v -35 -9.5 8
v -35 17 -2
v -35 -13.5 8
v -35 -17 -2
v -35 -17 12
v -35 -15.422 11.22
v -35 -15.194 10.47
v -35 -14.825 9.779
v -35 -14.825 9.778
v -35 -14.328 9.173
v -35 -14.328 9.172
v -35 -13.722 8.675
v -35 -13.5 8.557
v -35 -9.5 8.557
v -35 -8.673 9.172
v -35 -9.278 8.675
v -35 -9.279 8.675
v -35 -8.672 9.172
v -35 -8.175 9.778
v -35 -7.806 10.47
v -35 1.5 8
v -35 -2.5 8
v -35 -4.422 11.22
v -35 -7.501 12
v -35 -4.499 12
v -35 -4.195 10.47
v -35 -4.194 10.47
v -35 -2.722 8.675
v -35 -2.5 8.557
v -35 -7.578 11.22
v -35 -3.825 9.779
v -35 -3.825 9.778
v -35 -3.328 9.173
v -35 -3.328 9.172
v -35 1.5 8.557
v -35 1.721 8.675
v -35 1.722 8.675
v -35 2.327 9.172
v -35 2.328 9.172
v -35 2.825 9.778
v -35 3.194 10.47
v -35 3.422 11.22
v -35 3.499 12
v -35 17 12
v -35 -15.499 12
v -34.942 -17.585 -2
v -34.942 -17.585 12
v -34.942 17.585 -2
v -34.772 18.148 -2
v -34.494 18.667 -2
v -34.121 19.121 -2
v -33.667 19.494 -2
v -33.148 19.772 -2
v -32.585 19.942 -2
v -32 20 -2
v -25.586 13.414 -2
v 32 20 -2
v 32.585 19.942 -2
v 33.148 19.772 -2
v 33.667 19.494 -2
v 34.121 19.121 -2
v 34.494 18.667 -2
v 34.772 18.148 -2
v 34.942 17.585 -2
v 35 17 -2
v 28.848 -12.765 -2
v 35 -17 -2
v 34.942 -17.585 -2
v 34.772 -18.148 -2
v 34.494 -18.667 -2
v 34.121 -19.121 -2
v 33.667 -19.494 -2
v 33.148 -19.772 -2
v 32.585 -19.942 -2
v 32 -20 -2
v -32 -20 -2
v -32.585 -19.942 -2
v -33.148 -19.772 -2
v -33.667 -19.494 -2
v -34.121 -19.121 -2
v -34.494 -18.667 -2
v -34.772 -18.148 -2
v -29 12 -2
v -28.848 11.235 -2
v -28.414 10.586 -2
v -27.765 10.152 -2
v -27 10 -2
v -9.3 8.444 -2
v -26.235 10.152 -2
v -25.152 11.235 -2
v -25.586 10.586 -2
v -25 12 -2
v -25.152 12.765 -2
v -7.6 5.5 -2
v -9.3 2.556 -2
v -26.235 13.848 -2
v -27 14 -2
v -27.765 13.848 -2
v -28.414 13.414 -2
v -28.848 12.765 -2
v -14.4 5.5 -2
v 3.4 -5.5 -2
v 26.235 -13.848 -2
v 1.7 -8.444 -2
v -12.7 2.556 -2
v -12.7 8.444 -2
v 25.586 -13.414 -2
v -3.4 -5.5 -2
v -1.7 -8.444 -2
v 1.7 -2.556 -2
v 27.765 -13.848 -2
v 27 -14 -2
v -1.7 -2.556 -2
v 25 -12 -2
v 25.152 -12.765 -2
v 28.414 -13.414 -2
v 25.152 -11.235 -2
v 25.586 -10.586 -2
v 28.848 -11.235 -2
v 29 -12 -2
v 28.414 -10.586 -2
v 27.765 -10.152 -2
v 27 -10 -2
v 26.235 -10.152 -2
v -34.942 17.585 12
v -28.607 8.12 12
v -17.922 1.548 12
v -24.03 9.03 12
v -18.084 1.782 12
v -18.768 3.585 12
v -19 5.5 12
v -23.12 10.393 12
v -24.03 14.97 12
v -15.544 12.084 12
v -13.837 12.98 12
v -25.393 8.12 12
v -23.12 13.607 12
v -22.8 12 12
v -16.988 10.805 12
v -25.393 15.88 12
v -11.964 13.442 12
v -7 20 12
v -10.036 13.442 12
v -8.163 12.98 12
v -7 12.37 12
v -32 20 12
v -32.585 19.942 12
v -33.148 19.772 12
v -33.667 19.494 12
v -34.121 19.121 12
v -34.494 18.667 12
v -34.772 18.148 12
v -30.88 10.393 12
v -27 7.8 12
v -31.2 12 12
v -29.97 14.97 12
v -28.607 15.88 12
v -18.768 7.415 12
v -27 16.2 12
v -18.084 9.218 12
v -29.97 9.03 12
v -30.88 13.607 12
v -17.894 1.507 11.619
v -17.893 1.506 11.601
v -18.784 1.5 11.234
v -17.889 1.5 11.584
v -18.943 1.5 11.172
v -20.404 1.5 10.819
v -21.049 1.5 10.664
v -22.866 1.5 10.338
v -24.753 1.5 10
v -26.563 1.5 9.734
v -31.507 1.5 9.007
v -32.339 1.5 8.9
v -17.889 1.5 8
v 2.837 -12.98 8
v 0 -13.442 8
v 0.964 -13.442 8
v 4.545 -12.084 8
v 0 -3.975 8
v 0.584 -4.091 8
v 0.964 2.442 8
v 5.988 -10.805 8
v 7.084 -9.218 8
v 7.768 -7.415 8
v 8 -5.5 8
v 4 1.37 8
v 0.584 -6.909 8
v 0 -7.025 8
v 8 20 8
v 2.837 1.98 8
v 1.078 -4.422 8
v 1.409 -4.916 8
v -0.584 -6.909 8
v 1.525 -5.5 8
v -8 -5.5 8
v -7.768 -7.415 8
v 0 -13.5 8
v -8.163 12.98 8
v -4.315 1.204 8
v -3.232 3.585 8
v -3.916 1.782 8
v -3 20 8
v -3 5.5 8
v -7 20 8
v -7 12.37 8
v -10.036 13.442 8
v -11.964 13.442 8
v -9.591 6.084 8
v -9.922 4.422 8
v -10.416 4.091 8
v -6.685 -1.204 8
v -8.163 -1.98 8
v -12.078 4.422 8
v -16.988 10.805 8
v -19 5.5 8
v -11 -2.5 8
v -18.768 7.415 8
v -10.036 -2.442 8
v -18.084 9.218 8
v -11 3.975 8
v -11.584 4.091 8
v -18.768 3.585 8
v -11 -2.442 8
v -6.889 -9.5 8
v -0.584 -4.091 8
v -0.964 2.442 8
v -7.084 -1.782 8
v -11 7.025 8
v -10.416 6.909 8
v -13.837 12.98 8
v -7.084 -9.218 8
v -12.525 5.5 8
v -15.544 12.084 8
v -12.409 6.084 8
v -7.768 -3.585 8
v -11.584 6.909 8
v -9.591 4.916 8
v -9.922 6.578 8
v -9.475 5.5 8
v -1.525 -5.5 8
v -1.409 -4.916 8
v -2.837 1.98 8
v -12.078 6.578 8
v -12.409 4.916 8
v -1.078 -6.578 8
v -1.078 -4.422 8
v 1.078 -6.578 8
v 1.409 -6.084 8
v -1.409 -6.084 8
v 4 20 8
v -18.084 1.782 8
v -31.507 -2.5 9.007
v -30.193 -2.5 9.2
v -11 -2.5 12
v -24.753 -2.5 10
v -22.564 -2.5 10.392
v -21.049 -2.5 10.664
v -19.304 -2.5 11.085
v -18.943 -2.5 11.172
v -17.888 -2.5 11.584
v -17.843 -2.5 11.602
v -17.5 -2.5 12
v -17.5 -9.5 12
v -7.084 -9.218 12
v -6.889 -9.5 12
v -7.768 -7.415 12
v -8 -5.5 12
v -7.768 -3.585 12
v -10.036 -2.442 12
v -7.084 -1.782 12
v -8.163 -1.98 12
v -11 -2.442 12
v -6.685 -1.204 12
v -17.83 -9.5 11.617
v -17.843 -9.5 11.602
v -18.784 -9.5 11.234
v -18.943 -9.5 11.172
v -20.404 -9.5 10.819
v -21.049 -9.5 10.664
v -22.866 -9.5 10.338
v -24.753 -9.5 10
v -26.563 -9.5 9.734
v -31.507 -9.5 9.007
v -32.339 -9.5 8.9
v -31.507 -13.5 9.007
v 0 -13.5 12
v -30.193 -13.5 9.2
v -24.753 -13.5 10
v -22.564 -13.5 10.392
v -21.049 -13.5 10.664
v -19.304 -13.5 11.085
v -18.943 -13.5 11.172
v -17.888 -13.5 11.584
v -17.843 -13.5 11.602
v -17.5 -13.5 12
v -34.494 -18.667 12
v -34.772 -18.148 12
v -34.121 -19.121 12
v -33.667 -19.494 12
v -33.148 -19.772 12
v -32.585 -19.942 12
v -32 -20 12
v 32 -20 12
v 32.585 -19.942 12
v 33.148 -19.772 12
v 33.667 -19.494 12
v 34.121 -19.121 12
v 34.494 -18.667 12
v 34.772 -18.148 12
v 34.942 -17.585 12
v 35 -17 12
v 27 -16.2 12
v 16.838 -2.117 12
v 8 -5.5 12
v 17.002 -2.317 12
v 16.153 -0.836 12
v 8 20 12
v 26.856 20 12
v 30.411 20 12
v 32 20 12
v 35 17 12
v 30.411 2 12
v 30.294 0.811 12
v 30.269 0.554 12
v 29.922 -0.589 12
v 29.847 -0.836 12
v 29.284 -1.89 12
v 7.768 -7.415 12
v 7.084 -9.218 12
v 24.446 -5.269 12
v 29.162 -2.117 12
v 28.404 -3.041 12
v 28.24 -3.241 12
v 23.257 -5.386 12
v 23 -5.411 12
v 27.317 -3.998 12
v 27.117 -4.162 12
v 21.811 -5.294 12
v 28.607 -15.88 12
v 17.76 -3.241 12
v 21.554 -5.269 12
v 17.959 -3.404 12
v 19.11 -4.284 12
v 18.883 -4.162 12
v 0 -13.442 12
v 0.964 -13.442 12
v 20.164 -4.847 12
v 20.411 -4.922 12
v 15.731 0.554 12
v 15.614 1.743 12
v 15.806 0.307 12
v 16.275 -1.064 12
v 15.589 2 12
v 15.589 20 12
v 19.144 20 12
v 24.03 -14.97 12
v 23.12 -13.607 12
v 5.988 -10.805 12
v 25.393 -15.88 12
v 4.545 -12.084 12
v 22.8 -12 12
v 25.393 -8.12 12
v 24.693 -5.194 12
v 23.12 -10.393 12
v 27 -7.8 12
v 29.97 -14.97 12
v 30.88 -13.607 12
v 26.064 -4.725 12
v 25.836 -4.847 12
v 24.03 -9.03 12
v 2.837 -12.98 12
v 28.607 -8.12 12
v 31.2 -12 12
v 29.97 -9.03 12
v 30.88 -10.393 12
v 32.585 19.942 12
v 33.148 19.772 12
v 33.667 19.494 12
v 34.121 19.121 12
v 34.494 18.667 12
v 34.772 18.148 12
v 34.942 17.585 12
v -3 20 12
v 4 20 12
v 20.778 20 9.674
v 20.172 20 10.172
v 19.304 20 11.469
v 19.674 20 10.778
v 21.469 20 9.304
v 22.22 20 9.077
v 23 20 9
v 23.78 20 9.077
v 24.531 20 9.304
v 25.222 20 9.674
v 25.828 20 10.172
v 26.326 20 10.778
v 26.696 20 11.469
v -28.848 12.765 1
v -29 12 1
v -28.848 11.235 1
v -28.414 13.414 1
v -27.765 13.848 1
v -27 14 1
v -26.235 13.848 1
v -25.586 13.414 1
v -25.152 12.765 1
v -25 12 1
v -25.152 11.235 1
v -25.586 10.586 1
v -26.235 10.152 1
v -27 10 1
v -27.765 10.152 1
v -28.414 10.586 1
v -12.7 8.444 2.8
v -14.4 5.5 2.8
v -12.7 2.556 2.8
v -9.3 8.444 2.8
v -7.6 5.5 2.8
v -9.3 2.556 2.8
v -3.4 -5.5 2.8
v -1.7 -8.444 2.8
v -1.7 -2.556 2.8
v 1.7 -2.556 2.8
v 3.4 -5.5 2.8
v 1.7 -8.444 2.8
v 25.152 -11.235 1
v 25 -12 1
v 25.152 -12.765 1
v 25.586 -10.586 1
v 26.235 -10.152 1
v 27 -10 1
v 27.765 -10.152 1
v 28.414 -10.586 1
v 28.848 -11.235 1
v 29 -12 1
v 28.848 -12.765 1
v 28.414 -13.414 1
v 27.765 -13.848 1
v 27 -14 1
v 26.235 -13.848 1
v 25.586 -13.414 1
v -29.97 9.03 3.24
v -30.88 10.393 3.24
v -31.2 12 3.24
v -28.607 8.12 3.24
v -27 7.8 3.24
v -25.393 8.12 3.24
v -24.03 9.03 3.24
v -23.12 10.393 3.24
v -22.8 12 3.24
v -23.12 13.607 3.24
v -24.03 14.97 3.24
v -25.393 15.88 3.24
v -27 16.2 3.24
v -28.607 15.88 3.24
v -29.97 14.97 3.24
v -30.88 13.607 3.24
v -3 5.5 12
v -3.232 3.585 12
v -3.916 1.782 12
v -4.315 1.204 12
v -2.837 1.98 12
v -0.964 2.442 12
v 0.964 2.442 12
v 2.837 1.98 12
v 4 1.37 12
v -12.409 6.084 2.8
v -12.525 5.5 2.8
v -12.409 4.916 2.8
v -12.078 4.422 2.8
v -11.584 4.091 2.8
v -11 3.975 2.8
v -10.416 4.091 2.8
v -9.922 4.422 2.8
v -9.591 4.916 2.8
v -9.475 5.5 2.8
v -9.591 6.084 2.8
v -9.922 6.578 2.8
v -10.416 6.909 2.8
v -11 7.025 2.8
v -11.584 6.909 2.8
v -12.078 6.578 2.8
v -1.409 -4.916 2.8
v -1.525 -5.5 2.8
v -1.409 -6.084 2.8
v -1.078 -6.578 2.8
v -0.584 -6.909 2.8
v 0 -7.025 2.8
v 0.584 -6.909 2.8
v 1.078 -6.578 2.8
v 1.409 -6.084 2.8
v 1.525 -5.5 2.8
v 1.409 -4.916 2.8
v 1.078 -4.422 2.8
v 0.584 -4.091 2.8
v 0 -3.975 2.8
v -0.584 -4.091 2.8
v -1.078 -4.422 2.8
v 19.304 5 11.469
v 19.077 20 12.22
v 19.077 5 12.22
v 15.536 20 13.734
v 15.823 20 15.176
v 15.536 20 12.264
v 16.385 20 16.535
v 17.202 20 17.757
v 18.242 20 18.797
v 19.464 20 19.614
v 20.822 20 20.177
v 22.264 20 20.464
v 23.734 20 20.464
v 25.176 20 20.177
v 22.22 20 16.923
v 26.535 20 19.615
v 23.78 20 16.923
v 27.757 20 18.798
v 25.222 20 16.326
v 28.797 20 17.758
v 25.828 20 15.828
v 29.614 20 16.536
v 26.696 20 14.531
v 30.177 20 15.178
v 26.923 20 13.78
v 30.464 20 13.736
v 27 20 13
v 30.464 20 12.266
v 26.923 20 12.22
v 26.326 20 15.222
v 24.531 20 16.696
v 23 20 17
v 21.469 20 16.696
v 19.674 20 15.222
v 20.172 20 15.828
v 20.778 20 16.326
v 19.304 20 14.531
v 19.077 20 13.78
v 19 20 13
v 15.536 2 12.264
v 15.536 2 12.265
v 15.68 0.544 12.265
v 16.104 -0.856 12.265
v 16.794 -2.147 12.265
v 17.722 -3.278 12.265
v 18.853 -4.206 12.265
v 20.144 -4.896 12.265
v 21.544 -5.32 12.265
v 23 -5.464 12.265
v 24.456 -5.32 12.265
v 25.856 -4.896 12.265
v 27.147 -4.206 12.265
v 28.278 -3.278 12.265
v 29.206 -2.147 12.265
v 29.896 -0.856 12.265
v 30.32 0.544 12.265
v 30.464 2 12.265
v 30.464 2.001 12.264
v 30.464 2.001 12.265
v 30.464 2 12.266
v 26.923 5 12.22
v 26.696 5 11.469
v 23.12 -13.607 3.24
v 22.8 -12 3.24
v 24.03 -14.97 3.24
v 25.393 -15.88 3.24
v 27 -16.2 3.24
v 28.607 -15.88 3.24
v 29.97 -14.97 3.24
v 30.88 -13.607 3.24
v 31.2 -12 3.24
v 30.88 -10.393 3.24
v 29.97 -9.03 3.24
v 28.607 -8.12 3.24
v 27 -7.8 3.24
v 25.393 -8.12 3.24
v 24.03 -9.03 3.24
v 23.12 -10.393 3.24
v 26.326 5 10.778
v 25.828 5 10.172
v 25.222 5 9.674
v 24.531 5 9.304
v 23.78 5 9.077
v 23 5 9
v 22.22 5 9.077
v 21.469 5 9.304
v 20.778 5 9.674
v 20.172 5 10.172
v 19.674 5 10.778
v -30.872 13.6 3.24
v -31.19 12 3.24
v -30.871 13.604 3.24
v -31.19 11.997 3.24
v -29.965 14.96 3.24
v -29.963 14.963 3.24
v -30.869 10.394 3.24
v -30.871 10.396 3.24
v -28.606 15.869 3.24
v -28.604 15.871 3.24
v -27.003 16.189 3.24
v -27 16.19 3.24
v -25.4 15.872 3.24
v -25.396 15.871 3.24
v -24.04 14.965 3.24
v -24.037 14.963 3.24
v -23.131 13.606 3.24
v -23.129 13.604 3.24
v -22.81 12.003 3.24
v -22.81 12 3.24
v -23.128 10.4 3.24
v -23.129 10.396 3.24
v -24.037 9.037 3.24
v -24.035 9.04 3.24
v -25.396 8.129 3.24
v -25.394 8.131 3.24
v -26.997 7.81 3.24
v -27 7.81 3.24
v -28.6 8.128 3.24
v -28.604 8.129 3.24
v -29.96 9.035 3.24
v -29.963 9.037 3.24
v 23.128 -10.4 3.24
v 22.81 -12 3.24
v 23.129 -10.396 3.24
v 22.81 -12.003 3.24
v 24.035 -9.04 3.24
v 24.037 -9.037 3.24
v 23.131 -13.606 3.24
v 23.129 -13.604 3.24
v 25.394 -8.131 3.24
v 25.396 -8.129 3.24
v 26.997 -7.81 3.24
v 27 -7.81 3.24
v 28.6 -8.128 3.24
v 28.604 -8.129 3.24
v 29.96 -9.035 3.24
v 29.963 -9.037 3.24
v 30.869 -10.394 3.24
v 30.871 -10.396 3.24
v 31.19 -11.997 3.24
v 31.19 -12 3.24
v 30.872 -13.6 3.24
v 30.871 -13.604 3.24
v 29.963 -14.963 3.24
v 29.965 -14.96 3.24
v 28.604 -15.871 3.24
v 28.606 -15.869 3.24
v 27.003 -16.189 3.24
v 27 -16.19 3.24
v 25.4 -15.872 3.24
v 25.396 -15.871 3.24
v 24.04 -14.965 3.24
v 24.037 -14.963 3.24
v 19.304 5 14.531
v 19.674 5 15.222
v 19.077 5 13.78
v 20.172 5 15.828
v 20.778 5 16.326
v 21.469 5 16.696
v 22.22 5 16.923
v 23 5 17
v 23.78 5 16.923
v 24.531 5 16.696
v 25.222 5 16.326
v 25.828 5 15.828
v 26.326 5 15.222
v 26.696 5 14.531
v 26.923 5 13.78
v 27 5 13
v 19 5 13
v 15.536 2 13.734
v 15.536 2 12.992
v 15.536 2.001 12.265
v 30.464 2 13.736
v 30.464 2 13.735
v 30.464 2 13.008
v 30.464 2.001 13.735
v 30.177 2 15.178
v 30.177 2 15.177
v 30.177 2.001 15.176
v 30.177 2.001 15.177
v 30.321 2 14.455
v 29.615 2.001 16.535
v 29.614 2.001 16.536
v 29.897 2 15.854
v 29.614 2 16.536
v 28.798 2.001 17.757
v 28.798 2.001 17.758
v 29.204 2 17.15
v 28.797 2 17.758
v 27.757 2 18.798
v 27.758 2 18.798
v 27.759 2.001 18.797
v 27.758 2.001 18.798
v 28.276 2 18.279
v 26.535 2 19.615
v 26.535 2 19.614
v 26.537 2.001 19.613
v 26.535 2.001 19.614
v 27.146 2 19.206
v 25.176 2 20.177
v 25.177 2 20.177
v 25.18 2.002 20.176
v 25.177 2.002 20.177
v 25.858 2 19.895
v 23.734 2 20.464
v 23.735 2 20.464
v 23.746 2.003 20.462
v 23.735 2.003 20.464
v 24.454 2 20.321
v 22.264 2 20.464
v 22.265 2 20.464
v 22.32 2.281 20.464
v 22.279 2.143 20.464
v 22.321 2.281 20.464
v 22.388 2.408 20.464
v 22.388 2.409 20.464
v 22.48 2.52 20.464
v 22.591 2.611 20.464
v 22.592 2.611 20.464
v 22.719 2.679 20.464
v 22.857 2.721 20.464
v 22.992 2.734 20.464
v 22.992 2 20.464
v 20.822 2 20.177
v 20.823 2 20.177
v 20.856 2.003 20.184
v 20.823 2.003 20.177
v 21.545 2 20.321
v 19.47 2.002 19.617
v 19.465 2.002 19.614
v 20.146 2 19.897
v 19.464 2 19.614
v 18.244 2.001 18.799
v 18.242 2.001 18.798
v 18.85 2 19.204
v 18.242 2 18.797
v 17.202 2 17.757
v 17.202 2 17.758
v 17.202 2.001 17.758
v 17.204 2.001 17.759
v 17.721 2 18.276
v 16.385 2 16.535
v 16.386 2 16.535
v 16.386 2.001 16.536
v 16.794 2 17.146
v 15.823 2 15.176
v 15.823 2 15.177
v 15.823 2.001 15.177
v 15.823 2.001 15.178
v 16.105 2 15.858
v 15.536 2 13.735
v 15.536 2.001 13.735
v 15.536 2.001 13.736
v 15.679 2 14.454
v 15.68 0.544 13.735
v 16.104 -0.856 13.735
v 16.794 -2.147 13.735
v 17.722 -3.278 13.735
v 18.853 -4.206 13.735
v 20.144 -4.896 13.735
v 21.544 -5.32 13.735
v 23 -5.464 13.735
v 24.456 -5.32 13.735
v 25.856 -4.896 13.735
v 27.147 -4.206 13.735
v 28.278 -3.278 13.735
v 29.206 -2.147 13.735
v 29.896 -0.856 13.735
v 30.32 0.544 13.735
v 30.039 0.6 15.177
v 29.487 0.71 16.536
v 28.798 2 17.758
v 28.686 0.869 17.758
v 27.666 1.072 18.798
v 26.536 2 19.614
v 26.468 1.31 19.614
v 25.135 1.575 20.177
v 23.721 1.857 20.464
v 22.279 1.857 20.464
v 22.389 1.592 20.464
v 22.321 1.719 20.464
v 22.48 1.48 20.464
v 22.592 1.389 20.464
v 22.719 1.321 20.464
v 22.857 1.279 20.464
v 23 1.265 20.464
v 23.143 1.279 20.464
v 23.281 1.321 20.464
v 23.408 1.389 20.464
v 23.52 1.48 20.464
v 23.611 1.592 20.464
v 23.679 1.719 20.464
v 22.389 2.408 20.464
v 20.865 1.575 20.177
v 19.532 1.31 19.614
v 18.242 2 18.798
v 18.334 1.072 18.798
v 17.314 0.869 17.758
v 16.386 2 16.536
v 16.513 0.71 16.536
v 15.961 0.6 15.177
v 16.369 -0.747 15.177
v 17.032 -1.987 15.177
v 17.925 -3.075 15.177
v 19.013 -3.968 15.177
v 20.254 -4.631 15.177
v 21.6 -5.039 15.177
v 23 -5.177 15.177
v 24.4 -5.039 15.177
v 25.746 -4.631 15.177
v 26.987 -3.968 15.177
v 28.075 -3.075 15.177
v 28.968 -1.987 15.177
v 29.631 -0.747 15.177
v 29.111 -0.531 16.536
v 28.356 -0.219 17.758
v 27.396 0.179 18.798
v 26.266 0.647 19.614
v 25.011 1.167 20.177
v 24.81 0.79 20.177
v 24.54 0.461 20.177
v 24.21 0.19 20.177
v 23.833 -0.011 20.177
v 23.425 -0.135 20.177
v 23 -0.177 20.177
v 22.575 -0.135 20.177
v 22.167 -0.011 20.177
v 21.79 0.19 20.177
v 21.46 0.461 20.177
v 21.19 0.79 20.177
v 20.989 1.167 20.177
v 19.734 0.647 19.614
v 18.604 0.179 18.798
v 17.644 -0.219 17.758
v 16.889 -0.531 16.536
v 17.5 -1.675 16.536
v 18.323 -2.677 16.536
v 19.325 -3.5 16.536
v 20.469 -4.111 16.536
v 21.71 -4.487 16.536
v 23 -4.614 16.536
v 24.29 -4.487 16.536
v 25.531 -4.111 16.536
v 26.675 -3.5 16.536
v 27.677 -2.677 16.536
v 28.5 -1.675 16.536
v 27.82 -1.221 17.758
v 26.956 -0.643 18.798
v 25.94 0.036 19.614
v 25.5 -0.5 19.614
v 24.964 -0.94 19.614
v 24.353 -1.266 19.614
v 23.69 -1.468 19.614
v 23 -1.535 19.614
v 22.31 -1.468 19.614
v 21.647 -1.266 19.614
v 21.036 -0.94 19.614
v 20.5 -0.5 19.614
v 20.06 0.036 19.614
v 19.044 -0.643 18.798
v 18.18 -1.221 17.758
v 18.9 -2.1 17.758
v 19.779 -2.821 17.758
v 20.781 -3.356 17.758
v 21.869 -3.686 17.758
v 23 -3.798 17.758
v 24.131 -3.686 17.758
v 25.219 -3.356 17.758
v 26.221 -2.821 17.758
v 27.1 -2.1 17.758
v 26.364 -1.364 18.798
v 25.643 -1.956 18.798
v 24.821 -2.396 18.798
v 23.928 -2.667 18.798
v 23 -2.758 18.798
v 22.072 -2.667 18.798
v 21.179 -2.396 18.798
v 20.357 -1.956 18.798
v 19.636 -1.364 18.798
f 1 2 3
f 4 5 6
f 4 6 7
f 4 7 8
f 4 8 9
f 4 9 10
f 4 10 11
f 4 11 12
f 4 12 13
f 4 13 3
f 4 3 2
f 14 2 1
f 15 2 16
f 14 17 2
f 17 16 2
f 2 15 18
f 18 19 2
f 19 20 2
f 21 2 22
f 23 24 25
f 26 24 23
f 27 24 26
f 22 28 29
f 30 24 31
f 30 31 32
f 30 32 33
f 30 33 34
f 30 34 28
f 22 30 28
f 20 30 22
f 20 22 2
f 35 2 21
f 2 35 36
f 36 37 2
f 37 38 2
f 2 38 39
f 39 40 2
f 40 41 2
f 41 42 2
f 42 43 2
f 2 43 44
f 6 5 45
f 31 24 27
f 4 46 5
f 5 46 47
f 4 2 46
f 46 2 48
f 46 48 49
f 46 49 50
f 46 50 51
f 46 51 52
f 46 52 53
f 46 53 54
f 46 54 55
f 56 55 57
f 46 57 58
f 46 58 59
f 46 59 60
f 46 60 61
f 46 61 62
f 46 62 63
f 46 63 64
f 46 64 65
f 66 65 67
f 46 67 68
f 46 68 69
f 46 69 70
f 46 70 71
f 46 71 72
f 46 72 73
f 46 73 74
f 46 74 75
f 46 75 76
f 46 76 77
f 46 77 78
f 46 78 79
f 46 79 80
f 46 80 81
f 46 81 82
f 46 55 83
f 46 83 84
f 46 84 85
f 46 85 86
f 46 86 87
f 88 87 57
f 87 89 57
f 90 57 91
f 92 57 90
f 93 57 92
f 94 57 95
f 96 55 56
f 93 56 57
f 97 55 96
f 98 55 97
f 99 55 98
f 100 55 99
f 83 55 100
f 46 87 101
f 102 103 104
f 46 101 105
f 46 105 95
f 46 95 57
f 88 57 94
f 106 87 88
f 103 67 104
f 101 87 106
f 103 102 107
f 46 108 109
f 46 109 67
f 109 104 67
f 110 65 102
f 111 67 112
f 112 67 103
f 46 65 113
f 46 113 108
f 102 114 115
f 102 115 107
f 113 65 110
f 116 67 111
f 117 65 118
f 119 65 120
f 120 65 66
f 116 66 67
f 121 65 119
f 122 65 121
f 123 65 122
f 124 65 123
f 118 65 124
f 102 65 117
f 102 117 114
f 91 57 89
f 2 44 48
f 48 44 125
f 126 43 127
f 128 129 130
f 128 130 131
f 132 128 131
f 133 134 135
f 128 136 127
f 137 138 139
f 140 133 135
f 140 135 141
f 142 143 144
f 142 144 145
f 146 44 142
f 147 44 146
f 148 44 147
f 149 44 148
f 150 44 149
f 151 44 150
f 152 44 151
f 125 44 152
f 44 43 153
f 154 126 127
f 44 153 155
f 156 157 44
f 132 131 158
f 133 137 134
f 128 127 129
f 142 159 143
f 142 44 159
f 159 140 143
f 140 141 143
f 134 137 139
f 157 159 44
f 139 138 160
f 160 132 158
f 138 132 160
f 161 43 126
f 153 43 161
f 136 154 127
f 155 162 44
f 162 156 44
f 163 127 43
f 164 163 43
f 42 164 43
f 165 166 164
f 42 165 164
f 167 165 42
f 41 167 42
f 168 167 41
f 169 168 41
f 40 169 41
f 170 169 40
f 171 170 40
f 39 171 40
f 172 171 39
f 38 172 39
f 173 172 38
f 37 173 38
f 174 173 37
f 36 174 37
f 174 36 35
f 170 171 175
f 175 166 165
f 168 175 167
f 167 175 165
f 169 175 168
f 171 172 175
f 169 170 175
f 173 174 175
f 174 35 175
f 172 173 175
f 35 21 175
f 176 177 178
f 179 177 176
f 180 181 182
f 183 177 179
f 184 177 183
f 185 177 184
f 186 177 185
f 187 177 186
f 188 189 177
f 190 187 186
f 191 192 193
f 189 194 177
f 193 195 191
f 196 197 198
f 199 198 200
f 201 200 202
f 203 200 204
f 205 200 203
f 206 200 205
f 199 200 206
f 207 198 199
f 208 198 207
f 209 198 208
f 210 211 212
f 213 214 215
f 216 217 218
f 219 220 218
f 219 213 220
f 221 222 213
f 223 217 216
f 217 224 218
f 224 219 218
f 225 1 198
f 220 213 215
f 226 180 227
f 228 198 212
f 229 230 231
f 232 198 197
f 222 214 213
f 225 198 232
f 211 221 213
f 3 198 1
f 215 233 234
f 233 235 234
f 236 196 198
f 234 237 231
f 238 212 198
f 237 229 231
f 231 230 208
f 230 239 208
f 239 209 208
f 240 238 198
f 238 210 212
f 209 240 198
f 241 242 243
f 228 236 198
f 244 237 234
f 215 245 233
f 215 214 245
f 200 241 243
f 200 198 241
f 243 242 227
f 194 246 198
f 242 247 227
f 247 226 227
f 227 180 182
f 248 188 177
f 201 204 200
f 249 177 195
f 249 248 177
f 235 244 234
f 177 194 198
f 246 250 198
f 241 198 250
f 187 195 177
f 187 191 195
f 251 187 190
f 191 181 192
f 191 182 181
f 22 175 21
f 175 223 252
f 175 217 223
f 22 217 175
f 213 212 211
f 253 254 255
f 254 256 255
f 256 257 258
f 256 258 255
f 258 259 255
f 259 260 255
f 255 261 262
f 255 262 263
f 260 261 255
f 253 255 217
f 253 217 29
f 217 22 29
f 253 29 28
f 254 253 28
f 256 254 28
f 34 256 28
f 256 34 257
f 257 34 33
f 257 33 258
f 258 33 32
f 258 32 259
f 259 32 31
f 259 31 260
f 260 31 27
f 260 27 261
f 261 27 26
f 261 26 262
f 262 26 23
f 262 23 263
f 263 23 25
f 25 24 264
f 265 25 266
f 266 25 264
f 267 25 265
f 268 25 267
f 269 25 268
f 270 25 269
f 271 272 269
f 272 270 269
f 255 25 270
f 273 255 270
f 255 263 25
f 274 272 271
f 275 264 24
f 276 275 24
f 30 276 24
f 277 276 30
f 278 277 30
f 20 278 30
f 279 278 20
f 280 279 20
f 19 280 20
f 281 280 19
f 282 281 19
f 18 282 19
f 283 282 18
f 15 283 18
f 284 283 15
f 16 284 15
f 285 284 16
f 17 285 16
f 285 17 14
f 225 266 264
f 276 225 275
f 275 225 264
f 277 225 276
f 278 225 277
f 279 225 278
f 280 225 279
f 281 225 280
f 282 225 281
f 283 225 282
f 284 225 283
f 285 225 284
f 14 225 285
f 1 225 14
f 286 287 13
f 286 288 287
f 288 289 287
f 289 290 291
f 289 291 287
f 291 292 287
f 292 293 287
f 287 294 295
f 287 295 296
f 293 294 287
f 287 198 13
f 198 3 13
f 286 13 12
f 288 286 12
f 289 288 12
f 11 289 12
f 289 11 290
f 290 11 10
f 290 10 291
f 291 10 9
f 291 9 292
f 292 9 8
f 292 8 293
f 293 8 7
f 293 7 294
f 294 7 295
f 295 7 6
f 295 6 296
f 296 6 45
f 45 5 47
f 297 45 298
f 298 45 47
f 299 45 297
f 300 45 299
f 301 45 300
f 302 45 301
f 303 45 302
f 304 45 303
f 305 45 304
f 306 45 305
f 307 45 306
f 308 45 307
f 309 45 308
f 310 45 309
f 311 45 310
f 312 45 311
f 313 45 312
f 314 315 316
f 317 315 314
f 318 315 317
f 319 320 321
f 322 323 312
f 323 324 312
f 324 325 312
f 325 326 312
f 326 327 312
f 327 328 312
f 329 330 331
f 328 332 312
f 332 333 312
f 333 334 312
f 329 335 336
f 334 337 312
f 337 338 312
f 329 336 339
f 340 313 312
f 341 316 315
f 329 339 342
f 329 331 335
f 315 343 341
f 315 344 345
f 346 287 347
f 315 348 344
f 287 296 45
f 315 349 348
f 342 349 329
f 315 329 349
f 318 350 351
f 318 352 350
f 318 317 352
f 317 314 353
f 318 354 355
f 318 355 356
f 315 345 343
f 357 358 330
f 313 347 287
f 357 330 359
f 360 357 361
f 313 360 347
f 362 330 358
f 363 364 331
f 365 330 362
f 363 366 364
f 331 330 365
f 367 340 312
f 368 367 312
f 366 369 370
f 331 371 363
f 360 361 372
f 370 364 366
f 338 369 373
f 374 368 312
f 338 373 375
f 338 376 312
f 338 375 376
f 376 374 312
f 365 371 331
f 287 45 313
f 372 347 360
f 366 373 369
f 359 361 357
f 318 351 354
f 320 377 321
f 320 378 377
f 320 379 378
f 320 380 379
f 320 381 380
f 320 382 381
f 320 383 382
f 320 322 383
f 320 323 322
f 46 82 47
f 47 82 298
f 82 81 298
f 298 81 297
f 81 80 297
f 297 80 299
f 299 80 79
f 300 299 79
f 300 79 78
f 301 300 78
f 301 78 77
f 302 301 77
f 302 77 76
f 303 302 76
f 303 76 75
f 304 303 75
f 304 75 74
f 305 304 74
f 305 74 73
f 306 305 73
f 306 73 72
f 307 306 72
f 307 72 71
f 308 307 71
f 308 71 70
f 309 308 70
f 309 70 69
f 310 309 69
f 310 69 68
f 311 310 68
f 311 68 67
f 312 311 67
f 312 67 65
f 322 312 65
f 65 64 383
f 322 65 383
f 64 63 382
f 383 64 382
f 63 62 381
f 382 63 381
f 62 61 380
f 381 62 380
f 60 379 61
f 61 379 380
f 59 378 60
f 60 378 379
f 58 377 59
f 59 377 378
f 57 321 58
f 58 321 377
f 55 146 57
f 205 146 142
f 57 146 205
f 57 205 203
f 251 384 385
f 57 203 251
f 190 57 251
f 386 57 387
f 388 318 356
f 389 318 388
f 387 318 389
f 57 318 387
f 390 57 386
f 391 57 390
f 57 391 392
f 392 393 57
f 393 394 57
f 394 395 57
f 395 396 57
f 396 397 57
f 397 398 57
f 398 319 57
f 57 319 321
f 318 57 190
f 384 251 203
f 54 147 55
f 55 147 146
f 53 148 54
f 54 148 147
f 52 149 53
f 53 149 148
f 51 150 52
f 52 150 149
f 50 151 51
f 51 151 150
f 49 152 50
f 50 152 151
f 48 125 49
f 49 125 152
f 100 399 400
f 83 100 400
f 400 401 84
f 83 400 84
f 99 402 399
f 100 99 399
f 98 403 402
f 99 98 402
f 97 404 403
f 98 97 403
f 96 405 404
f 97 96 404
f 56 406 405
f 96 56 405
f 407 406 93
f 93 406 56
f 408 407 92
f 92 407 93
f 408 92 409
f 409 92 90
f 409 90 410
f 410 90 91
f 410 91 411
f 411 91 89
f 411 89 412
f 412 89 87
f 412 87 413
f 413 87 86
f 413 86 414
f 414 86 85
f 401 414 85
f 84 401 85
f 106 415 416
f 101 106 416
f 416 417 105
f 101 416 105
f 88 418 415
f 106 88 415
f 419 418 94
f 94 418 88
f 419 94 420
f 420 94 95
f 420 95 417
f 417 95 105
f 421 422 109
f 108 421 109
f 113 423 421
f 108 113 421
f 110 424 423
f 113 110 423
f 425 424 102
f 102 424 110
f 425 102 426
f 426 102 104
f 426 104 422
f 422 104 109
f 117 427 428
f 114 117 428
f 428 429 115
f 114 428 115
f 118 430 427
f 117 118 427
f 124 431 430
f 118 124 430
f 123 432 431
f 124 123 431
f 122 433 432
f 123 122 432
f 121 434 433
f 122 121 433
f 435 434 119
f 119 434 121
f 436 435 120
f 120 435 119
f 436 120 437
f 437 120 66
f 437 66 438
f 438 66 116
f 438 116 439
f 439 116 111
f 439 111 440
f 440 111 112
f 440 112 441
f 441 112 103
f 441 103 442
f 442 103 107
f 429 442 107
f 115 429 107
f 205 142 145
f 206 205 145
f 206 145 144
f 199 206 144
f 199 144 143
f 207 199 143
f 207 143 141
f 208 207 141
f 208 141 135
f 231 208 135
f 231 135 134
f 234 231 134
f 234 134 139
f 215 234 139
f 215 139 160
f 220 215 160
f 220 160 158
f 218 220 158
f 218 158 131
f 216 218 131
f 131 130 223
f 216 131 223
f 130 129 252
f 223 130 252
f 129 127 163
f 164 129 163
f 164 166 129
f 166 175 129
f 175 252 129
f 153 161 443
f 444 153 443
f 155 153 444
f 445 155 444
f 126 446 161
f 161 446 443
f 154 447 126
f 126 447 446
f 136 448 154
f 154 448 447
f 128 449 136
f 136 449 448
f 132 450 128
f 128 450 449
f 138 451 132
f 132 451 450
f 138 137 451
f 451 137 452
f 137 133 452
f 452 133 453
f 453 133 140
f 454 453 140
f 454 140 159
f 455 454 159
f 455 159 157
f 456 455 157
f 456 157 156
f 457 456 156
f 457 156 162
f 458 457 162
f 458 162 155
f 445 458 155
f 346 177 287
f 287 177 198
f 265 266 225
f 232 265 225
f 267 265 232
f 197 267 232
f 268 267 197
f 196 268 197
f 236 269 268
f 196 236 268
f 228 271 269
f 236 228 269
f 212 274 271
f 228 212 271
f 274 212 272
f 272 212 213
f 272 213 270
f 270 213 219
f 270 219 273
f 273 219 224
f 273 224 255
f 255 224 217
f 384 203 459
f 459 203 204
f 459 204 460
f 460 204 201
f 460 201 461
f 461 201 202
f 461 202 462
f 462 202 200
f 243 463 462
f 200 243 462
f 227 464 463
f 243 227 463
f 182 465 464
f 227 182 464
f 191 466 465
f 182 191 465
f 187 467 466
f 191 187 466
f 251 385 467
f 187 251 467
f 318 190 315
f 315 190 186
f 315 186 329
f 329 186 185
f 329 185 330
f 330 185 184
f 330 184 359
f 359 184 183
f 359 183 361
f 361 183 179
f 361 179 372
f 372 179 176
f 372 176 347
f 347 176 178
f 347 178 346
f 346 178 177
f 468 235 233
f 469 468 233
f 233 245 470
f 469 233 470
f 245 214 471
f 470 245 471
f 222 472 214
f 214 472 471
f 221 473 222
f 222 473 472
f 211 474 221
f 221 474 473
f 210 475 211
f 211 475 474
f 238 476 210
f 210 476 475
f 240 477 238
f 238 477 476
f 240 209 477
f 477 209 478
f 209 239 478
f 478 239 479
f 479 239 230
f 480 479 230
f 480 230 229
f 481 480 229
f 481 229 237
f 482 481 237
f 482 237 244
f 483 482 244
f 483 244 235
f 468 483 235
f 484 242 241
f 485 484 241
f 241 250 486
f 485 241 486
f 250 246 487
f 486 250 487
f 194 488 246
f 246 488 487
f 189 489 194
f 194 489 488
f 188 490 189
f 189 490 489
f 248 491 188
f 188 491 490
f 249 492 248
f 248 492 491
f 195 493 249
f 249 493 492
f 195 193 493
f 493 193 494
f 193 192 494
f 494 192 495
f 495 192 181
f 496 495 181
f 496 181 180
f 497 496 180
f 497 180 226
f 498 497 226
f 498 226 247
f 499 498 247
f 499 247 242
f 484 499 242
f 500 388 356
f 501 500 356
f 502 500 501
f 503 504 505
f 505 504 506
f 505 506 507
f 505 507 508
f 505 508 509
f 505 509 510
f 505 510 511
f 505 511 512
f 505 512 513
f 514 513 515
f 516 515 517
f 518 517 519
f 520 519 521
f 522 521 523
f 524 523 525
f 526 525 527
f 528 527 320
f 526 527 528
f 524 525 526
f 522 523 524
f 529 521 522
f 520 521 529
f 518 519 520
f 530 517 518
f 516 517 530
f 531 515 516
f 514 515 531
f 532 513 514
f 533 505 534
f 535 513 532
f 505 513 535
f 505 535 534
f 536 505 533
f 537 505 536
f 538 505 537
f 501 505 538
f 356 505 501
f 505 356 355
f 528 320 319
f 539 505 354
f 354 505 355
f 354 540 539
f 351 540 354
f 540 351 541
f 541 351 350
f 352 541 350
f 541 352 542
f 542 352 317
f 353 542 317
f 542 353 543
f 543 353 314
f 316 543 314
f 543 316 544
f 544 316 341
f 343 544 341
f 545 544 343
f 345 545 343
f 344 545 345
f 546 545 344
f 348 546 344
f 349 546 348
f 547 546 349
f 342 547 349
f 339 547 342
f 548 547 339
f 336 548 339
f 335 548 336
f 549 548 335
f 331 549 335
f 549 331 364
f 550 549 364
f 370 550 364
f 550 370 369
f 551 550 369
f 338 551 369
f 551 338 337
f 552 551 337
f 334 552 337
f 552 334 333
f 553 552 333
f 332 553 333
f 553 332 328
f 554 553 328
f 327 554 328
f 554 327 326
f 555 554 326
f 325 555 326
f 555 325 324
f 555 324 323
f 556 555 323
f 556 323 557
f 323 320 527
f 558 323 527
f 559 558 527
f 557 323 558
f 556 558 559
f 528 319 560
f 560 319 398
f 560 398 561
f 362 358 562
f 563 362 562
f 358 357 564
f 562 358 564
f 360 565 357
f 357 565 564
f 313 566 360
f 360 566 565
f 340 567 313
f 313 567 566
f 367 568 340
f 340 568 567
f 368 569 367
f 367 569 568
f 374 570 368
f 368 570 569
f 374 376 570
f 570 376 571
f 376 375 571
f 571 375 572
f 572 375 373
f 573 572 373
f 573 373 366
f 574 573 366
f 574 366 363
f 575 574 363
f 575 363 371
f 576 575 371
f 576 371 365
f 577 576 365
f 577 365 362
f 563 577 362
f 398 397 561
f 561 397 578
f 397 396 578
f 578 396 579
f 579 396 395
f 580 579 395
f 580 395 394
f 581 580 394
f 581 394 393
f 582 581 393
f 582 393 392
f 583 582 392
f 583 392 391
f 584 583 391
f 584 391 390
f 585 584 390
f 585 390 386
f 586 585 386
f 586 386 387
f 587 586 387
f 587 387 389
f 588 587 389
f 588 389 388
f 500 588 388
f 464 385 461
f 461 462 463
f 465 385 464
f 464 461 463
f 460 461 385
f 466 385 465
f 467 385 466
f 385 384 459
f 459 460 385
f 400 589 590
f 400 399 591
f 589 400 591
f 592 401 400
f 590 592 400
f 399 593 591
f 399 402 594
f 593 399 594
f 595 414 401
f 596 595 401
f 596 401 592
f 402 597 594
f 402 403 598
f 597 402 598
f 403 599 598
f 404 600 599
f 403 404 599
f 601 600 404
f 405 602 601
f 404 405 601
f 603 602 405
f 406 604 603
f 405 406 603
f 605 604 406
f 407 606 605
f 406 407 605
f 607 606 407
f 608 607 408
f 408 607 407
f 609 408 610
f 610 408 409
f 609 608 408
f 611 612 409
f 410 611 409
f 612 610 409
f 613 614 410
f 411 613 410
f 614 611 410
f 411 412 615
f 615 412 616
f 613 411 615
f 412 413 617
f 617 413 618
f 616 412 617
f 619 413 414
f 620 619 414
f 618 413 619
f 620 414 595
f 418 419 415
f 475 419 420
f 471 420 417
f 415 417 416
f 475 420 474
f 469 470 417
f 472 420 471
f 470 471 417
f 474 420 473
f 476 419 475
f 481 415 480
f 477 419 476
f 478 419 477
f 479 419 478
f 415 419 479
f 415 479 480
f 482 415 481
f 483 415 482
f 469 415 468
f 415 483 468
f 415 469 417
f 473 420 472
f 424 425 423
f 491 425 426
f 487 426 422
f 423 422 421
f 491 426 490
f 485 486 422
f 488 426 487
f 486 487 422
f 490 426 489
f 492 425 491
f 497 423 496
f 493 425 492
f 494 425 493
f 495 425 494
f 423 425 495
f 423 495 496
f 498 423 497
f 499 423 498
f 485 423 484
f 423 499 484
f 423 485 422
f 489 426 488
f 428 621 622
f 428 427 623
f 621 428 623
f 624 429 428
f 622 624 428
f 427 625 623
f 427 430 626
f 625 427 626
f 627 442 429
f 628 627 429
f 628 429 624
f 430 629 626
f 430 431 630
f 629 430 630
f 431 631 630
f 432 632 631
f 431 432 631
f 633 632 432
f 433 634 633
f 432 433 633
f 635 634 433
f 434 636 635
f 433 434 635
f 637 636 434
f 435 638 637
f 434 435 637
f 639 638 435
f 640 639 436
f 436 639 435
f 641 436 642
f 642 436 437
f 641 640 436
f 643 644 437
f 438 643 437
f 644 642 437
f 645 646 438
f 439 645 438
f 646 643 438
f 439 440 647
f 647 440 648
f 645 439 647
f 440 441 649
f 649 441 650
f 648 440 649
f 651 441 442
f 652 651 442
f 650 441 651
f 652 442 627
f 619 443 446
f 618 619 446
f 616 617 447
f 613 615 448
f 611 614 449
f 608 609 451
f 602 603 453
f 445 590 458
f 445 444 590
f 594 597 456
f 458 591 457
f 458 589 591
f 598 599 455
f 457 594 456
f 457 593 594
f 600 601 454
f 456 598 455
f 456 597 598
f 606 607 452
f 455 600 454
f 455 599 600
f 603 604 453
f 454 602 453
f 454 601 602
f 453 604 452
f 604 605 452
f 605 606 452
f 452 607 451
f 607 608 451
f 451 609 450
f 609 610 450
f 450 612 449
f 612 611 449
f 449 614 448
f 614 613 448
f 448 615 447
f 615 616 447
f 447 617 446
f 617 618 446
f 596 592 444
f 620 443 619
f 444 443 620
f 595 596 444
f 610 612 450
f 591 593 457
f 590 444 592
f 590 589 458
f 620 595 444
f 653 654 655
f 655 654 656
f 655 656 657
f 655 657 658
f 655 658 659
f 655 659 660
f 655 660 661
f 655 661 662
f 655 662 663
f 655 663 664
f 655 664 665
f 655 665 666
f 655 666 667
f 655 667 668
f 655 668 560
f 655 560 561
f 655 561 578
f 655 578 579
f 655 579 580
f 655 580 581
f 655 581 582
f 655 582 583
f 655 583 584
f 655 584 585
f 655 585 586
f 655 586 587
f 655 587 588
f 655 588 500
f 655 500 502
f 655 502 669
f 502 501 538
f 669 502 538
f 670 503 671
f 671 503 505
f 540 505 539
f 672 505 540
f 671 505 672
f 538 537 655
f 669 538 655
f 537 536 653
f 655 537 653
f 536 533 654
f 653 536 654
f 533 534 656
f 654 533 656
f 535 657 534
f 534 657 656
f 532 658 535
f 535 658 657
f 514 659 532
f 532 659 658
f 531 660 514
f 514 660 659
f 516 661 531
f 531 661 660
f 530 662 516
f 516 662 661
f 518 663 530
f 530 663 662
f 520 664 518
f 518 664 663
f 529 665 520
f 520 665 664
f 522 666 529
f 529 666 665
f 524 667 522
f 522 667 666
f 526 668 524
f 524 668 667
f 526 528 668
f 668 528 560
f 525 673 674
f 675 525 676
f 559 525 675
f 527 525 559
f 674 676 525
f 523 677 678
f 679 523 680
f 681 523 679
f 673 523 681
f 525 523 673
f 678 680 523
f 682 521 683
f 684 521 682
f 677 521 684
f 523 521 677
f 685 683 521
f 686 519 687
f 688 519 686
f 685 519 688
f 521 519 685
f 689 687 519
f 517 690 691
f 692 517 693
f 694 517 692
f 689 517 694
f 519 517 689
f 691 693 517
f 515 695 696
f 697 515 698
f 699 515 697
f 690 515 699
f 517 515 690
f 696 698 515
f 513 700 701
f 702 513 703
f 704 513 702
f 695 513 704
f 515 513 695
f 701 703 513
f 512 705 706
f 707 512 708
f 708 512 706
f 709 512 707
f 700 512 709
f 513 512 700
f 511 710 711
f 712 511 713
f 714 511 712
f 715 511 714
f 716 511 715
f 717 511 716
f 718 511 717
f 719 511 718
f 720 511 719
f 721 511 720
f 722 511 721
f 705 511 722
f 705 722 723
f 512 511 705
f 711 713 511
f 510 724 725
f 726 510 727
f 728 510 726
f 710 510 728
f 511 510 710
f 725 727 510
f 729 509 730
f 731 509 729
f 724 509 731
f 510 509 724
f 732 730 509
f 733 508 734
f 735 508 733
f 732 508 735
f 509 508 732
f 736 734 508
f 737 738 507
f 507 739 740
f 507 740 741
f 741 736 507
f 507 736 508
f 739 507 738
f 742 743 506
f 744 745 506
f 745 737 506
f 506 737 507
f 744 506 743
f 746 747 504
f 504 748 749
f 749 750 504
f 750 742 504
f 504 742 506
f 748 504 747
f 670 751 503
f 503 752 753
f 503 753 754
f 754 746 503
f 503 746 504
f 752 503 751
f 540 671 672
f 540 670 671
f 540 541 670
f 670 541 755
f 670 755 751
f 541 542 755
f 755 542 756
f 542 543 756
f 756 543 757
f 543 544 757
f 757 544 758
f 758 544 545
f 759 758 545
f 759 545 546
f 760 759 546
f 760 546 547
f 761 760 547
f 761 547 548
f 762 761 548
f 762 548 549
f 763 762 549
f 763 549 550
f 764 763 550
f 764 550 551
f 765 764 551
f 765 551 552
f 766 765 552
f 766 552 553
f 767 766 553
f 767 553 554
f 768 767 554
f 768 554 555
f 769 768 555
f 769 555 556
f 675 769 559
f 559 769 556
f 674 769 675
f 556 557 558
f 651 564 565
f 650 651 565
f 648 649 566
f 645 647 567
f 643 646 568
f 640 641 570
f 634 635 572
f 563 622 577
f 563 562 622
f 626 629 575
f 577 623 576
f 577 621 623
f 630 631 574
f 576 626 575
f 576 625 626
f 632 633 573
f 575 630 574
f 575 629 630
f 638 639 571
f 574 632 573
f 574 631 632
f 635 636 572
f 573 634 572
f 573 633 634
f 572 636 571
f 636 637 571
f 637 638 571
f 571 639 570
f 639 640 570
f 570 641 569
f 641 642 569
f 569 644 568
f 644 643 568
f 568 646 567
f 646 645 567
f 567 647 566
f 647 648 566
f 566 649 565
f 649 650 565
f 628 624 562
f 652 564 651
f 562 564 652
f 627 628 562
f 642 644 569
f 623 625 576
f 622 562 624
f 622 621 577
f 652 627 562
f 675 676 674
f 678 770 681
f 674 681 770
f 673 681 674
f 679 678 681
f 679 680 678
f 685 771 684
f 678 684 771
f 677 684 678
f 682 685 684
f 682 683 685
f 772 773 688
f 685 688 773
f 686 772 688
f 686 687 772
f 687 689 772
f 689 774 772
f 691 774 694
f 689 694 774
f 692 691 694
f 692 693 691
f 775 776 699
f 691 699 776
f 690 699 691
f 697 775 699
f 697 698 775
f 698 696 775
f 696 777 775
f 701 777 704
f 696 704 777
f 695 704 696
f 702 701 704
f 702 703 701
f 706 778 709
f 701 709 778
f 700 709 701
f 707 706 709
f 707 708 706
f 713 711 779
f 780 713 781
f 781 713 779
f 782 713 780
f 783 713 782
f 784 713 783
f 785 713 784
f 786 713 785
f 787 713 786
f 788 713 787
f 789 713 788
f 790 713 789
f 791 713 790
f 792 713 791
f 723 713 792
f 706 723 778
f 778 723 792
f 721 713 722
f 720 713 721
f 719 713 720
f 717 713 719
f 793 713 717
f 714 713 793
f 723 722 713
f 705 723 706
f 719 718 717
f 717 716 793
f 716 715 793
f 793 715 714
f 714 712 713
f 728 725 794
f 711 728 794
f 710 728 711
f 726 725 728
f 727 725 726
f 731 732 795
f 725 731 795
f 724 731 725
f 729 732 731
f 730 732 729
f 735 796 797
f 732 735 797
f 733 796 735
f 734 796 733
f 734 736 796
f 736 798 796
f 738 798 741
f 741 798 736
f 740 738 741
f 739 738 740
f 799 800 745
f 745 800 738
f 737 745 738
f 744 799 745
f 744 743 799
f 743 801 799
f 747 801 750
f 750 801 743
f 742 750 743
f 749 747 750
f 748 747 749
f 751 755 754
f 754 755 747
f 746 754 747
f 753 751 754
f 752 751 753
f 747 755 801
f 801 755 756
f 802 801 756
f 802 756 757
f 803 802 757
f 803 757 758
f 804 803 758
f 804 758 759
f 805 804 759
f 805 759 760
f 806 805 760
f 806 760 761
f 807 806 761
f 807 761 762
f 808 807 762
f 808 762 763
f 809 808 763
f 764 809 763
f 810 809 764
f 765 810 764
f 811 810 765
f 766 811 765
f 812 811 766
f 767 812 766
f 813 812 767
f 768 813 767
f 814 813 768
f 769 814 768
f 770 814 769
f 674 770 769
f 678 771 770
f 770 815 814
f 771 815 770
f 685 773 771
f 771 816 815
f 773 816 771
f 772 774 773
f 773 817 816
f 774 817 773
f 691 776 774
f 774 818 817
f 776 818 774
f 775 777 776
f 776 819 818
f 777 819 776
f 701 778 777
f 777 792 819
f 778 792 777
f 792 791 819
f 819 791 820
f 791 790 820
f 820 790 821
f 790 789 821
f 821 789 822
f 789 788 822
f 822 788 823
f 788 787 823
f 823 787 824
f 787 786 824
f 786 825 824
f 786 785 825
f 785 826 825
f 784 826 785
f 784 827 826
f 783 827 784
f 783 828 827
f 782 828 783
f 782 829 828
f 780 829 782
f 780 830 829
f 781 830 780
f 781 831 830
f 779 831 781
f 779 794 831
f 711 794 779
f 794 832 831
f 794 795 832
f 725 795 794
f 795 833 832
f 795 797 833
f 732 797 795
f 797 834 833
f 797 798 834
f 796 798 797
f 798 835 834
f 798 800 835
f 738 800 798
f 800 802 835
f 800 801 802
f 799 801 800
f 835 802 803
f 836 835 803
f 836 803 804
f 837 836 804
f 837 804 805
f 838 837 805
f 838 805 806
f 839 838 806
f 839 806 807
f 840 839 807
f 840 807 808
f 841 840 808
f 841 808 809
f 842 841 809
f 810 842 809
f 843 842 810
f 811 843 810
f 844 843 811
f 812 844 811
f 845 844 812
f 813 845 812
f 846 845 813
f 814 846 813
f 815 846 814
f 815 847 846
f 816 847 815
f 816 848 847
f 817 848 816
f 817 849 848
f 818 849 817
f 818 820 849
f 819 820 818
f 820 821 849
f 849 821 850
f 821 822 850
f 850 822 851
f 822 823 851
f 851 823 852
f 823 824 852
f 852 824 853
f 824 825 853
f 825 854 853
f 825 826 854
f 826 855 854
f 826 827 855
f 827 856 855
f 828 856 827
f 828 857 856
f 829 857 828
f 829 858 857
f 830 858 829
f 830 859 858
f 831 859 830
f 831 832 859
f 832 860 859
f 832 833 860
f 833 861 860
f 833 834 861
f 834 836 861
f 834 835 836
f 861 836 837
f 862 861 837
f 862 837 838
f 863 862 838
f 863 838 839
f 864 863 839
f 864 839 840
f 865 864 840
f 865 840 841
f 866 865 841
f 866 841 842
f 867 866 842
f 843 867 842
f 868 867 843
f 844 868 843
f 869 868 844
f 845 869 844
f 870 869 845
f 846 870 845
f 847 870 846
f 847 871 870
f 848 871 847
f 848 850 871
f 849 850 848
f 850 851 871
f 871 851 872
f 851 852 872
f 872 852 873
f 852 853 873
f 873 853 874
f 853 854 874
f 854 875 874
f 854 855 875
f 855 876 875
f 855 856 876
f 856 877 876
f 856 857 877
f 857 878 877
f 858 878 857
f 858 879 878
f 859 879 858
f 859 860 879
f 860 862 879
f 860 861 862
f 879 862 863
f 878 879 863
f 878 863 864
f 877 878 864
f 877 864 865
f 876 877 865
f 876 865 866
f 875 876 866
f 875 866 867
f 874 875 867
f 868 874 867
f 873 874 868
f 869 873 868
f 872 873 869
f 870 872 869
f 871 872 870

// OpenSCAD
// file: stage-y.scad
// CoreBeam Laser Engraver
//
// Licence: CC BY-SA 3.0, http://creativecommons.org/licenses/by-sa/3.0/
// Author: Dominik Scholz <schlotzz@schlotzz.com>
// visit: http://www.schlotzz.com
//
// y stage idler


// include files
include <common.scad>;
include <bearing.scad>;



// y stage
module y_stage()
{
	width = 70;
	height = 58;
	depth = 12;

	difference()
	{
		// main body
		translate([0, 0, depth / 2])
			roundedRectangle([width, height, depth], 3, $fn = 32);

		// lm8uu cutouts
		translate([23, 0, 0])
			bearing_cutout_lm8uu(2);

		// belt path
		translate([4, 0, 0])
			belt_path();

		// idler pulley cutouts
		for (i = [[-17, 90], [17, 0]])
			translate([-11, i[0], 0])
				rotate([0, 0, i[1]])
					bearing_cutout_623zz_pulley(epsilon);

		// smooth rods
		for (y = [-21, 21])
			translate([-width / 2 + 15, y, 6])
				rotate([0, -90, 0])
					cylinder(r = 4, h = 40, $fn = 64);

		// center cutout
		translate([-15.5, 0, depth / 2])
			roundedRectangle([30, 10, depth + 2 * epsilon], 3, $fn = 16);
	}
}
// file: bearing.scad
// CoreBeam Laser Engraver
//
// Licence: CC BY-SA 3.0, http://creativecommons.org/licenses/by-sa/3.0/
// Author: Dominik Scholz <schlotzz@schlotzz.com>
// visit: http://www.schlotzz.com
//
// several bearings and holders


// include files
include <common.scad>;



// lm8uu bearing
module bearing_lm8uu(bearings)
{
	bearing_diameter = 15;
	bearing_length = 24 + .1;

	rotate([90, 0, 0])
		difference()
		{
			cylinder(r = bearing_diameter / 2, h = bearing_length * bearings, $fn = 32, center = true);
			cylinder(r = 8 / 2, h = bearing_length * bearings + 2 * epsilon, $fn = 16, center = true);
		}
}

// cutouts for lm8uu linear bearing with zipties
// Author: Dominik Scholz <schlotzz@schlotzz.com>
// original author: Josef Průša <iam@josefprusa.cz> and contributors
module bearing_cutout_lm8uu(bearings = 1)
{
	// dimensions
	bearing_diameter = 15;
	bearing_length = 24 + .1;
	cutter_length = 10 + bearings * bearing_length;
	one_holder_length = 8 + bearing_length;
	holder_length = 8 + bearings * bearing_length;
 
	// main bearing cut
	difference()
	{
		translate([0, 0, 12 + 1.5])
			rotate([90, 0, 0])
				translate([0, 0, -cutter_length / 2])
					cylinder(h = cutter_length, r = bearing_diameter / 2, $fn = 50);

		// bearing retainers
		translate([0, 1 - holder_length / 2, 3 + 1.5])
			cube([24, 6, 8], center = true);
		translate([0, -1 + holder_length / 2, 3 + 1.5])
			cube([24, 6, 8], center = true);
	}
 
	// ziptie cutouts
	for (i = [0 : bearings - 1])
	{
		translate([0, -holder_length / 2, 0])
		{
			translate([0, one_holder_length / 2 + i * 25,0])
			{
				difference()
				{
					union()
					{
						translate([0, 2 - 6, 12])
							rotate([90, 0, 0])
								cylinder(h = 4, r = 12.5, $fn = 50);
						translate([0, 2 + 6, 12])
							rotate([90, 0, 0])
								cylinder(h = 4, r = 12.5, $fn = 50);
  					}
					
					translate([0, 10, 12])
						rotate([90, 0, 0])
							cylinder(h = 24, r = 10, $fn = 50);
				}
			}
		}
	}

	// show bearing
	%translate([0, 0, 13])
		bearing_lm8uu(bearings);
 
}



// cutouts for lm8uu linear bearing
module bearing_cutout_lm8uu_simple(bearings = 1)
{
	// dimensions
	bearing_diameter = 15;
	bearing_length = 24 + .5;
	cutter_length = bearing_length * bearings;
 
	// main bearing cut
	rotate([90, 0, 0])
		cylinder(h = cutter_length, r = bearing_diameter / 2, center = true, $fn = 50);
 
	// show bearing
	%bearing_lm8uu(bearings);
}


// 2x623zz flanged bearing (3x10x4mm) as belt idler pulley
module bearing_623zz_pulley()
{
	// dimensions
	bearing_inner_diameter = 10;
	bearing_outer_diameter = 11.5;
	bearing_inner_height = 3;
	bearing_outer_height = 1;
	bearing_height = bearing_inner_height + bearing_outer_height;
	bearing_hole_diameter = 3;

	difference()
	{
		union()
		{
			// inner cylinder
			cylinder(r = bearing_inner_diameter / 2, h = bearing_height * 2, $fn = 32);
			
			// flanges
			for (z = [0, bearing_height * 2 - bearing_outer_height])
				translate([0, 0, z])
					cylinder(r = bearing_outer_diameter / 2, h = bearing_outer_height, $fn = 32);
		}

		// inner mounting hole
		translate([0, 0, -epsilon])
			cylinder(r = bearing_hole_diameter / 2, h = bearing_height * 2 + epsilon * 2, $fn = 16);
	}

}


// cutout for 623zz bearing pulley including belt path
module bearing_cutout_623zz_pulley()
{
	bearing_outer_diameter = 11.5 + 4.5;
	bearing_inner_height = 3;
	bearing_outer_height = 1;
	bearing_height = bearing_inner_height + bearing_outer_height;
	bearing_hole_diameter = 3;
	screw_length = 16;
	belt_width = 4;
	belt_length = 40;

	union()
	{
		// main body cutout
		translate([0, 0, screw_length - bearing_height * 2])
			cylinder(r = bearing_outer_diameter / 2, h = bearing_height * 2);
		
		// mounting hole for screw
		cylinder(r = m3_radius, h = screw_length, $fn = 16);

		// hexnut retaining hole
		translate([0, 0, -epsilon - 10])
			m3_hexnut_cutout(epsilon + 10);

		// belt path
		translate([bearing_outer_diameter / 2 - belt_width, 0, screw_length - bearing_height * 2])
			cube([belt_width, belt_length, bearing_height * 2]);
		translate([-belt_length, -bearing_outer_diameter / 2, screw_length - bearing_height * 2])
			cube([belt_length, belt_width, bearing_height * 2]);
	}

	// show idler pulleys
	%translate([0, 0, 8])
		bearing_623zz_pulley();

}


// belt path
module belt_path(length = 100)
{
	bearing_inner_height = 3;
	bearing_outer_height = 1;
	bearing_height = bearing_inner_height + bearing_outer_height;
	screw_length = 16;
	belt_width = 4;

	translate([0, -length / 2, screw_length - bearing_height * 2])
		cube([belt_width, length, bearing_height * 2]);
}
// file: common.scad
// CoreBeam Laser Engraver
//
// Licence: CC BY-SA 3.0, http://creativecommons.org/licenses/by-sa/3.0/
// Author: Dominik Scholz <schlotzz@schlotzz.com>
// visit: http://www.schlotzz.com
//
// definitions of common values



// avoid openscad artefacts in preview
epsilon = 0.01;

// increase this if your slicer or printer make holes too tight
extra_radius = 0.1;

// major diameter of metric 3mm thread
m3_major = 2.85;
m3_radius = m3_major / 2 + extra_radius;
m3_wide_radius = m3_major / 2 + extra_radius + 0.2;
m3_small_radius = m3_radius - 0.1;

// diameter of metric 3mm hexnut screw head
m3_head_radius = 3 + extra_radius;

// nema 17 dimensions
nema17_width = 42.3;
nema17_hole_offsets = [
	[-15.5, -15.5, 0],
	[-15.5,  15.5, 0],
	[ 15.5, -15.5, 0],
	[ 15.5,  15.5, 0]
];


// hole for retaining a m3 hexnut
module m3_hexnut_cutout(additional_height = 0)
{
	cylinder(r = 3.15 + 2.5 * extra_radius, h = 2.5 + 3 * extra_radius + additional_height, $fn = 6);
}


// rounded rectangle
module roundedRectangle(size, radius)
{
	cube([size[0], size[1] - radius * 2, size[2]], true);
	cube([size[0] - radius * 2, size[1], size[2]], true);

	for (x = [-size[0] / 2 + radius, size[0] / 2 - radius])
		for (y = [-size[1] / 2 + radius, size[1] / 2 - radius])
			translate([x, y, 0])
				cylinder(size[2], radius, radius, true);
}


// rounded trapezoid
module roundedTrapezoid(size, radius, bottom)
{
	hull()
	{
		// bottom
		for (i = [[-bottom / 2 + radius, radius, 0], [bottom / 2 - radius, radius, 0]])
			translate(i)
				cylinder(r = radius, h = size[2], $fn = 32);

		// top
		for (i = [[-size[0] / 2 + radius, size[1] - radius, 0], [size[0] / 2 - radius, size[1] - radius, 0]])
			translate(i)
				cylinder(r = radius, h = size[2], $fn = 32);


	}

}


// hole for wood screw 4x15, countersunk head
module woodscrew_cutout()
{
	translate([0, 0, -epsilon])
		cylinder(r = 2.0, h = 3 + epsilon * 2, $fn = 16);

	translate([0, 0, 3])
		cylinder(r1 = 2.0, r2 = 4.2, h = 2.25, $fn = 16);

	translate([0, 0, 5.25 - epsilon])
		cylinder(r = 4.2, h = 30, $fn = 16);
}
// main file
// CoreBeam Laser Engraver
//
// Licence: CC BY-SA 3.0, http://creativecommons.org/licenses/by-sa/3.0/
// Author: Dominik Scholz <schlotzz@schlotzz.com>
// visit: http://www.schlotzz.com
//
// top idler


// include files
include <common.scad>;
include <bearing.scad>;
include <stage-y.scad>;



// y stage
module top_stage()
{
	width = 70;
	height = 40;
	depth = 14;

	difference()
	{
	
		union()
		{
			// main body
			translate([0, 0, depth / 2])
				roundedRectangle([width, height, depth], 3, $fn = 32);

			// rod enforcement
			translate([23, height / 2 - 18, 15])
			{
				// rotate cylinder to align with sphere
				rotate([-90, 5.62, 0])
					cylinder(r = 7.5, h = 18, $fn = 32);
				sphere(r = 7.5, $fn = 32);
			}
		}

		// smooth rod mounting hole
		translate([23, height / 2 - 15, 15])
			rotate([-90, 0, 0])
				cylinder(r = 4, h = 15 + 2 * epsilon, $fn = 32);

		// idler pulley cutouts
		for (i = [0, 11])
			translate([-11 + i, 5.5 - i, 2])
				rotate([0, 0, 0])
					bearing_cutout_623zz_pulley(epsilon);

		// extra space for twisted belt
		for (y = [-0.5, -11.5])
			translate([-width / 4, y, 14])
				rotate([0, -90, 0])
					cylinder(r1 = 2, r2 = 4, h = width / 4 + epsilon, $fn = 32);

		// mounting holes
		translate([-width / 2 + 8, height / 2 - 8, 0])
			woodscrew_cutout();
		translate([width / 2 - 8, -height / 2 + 8, 0])
			woodscrew_cutout();
	

	}

}

translate([0, 0, -2])
top_stage();

/*
translate([80, 0, 0])
	mirror([1, 0, 0])
		top_stage();
*/

// show smooth rods
%translate([23, 14, 13])
	rotate([-90, 0, 0])
		cylinder(r = 4, h = 200, center = 0, $fn = 16);

// show belts
%for(i = [-5.75, 5.25])
	translate([i, 10 - i, 9])
		cube([1.5, 80, 6]);

%translate([0, 50, 0])
	y_stage();
